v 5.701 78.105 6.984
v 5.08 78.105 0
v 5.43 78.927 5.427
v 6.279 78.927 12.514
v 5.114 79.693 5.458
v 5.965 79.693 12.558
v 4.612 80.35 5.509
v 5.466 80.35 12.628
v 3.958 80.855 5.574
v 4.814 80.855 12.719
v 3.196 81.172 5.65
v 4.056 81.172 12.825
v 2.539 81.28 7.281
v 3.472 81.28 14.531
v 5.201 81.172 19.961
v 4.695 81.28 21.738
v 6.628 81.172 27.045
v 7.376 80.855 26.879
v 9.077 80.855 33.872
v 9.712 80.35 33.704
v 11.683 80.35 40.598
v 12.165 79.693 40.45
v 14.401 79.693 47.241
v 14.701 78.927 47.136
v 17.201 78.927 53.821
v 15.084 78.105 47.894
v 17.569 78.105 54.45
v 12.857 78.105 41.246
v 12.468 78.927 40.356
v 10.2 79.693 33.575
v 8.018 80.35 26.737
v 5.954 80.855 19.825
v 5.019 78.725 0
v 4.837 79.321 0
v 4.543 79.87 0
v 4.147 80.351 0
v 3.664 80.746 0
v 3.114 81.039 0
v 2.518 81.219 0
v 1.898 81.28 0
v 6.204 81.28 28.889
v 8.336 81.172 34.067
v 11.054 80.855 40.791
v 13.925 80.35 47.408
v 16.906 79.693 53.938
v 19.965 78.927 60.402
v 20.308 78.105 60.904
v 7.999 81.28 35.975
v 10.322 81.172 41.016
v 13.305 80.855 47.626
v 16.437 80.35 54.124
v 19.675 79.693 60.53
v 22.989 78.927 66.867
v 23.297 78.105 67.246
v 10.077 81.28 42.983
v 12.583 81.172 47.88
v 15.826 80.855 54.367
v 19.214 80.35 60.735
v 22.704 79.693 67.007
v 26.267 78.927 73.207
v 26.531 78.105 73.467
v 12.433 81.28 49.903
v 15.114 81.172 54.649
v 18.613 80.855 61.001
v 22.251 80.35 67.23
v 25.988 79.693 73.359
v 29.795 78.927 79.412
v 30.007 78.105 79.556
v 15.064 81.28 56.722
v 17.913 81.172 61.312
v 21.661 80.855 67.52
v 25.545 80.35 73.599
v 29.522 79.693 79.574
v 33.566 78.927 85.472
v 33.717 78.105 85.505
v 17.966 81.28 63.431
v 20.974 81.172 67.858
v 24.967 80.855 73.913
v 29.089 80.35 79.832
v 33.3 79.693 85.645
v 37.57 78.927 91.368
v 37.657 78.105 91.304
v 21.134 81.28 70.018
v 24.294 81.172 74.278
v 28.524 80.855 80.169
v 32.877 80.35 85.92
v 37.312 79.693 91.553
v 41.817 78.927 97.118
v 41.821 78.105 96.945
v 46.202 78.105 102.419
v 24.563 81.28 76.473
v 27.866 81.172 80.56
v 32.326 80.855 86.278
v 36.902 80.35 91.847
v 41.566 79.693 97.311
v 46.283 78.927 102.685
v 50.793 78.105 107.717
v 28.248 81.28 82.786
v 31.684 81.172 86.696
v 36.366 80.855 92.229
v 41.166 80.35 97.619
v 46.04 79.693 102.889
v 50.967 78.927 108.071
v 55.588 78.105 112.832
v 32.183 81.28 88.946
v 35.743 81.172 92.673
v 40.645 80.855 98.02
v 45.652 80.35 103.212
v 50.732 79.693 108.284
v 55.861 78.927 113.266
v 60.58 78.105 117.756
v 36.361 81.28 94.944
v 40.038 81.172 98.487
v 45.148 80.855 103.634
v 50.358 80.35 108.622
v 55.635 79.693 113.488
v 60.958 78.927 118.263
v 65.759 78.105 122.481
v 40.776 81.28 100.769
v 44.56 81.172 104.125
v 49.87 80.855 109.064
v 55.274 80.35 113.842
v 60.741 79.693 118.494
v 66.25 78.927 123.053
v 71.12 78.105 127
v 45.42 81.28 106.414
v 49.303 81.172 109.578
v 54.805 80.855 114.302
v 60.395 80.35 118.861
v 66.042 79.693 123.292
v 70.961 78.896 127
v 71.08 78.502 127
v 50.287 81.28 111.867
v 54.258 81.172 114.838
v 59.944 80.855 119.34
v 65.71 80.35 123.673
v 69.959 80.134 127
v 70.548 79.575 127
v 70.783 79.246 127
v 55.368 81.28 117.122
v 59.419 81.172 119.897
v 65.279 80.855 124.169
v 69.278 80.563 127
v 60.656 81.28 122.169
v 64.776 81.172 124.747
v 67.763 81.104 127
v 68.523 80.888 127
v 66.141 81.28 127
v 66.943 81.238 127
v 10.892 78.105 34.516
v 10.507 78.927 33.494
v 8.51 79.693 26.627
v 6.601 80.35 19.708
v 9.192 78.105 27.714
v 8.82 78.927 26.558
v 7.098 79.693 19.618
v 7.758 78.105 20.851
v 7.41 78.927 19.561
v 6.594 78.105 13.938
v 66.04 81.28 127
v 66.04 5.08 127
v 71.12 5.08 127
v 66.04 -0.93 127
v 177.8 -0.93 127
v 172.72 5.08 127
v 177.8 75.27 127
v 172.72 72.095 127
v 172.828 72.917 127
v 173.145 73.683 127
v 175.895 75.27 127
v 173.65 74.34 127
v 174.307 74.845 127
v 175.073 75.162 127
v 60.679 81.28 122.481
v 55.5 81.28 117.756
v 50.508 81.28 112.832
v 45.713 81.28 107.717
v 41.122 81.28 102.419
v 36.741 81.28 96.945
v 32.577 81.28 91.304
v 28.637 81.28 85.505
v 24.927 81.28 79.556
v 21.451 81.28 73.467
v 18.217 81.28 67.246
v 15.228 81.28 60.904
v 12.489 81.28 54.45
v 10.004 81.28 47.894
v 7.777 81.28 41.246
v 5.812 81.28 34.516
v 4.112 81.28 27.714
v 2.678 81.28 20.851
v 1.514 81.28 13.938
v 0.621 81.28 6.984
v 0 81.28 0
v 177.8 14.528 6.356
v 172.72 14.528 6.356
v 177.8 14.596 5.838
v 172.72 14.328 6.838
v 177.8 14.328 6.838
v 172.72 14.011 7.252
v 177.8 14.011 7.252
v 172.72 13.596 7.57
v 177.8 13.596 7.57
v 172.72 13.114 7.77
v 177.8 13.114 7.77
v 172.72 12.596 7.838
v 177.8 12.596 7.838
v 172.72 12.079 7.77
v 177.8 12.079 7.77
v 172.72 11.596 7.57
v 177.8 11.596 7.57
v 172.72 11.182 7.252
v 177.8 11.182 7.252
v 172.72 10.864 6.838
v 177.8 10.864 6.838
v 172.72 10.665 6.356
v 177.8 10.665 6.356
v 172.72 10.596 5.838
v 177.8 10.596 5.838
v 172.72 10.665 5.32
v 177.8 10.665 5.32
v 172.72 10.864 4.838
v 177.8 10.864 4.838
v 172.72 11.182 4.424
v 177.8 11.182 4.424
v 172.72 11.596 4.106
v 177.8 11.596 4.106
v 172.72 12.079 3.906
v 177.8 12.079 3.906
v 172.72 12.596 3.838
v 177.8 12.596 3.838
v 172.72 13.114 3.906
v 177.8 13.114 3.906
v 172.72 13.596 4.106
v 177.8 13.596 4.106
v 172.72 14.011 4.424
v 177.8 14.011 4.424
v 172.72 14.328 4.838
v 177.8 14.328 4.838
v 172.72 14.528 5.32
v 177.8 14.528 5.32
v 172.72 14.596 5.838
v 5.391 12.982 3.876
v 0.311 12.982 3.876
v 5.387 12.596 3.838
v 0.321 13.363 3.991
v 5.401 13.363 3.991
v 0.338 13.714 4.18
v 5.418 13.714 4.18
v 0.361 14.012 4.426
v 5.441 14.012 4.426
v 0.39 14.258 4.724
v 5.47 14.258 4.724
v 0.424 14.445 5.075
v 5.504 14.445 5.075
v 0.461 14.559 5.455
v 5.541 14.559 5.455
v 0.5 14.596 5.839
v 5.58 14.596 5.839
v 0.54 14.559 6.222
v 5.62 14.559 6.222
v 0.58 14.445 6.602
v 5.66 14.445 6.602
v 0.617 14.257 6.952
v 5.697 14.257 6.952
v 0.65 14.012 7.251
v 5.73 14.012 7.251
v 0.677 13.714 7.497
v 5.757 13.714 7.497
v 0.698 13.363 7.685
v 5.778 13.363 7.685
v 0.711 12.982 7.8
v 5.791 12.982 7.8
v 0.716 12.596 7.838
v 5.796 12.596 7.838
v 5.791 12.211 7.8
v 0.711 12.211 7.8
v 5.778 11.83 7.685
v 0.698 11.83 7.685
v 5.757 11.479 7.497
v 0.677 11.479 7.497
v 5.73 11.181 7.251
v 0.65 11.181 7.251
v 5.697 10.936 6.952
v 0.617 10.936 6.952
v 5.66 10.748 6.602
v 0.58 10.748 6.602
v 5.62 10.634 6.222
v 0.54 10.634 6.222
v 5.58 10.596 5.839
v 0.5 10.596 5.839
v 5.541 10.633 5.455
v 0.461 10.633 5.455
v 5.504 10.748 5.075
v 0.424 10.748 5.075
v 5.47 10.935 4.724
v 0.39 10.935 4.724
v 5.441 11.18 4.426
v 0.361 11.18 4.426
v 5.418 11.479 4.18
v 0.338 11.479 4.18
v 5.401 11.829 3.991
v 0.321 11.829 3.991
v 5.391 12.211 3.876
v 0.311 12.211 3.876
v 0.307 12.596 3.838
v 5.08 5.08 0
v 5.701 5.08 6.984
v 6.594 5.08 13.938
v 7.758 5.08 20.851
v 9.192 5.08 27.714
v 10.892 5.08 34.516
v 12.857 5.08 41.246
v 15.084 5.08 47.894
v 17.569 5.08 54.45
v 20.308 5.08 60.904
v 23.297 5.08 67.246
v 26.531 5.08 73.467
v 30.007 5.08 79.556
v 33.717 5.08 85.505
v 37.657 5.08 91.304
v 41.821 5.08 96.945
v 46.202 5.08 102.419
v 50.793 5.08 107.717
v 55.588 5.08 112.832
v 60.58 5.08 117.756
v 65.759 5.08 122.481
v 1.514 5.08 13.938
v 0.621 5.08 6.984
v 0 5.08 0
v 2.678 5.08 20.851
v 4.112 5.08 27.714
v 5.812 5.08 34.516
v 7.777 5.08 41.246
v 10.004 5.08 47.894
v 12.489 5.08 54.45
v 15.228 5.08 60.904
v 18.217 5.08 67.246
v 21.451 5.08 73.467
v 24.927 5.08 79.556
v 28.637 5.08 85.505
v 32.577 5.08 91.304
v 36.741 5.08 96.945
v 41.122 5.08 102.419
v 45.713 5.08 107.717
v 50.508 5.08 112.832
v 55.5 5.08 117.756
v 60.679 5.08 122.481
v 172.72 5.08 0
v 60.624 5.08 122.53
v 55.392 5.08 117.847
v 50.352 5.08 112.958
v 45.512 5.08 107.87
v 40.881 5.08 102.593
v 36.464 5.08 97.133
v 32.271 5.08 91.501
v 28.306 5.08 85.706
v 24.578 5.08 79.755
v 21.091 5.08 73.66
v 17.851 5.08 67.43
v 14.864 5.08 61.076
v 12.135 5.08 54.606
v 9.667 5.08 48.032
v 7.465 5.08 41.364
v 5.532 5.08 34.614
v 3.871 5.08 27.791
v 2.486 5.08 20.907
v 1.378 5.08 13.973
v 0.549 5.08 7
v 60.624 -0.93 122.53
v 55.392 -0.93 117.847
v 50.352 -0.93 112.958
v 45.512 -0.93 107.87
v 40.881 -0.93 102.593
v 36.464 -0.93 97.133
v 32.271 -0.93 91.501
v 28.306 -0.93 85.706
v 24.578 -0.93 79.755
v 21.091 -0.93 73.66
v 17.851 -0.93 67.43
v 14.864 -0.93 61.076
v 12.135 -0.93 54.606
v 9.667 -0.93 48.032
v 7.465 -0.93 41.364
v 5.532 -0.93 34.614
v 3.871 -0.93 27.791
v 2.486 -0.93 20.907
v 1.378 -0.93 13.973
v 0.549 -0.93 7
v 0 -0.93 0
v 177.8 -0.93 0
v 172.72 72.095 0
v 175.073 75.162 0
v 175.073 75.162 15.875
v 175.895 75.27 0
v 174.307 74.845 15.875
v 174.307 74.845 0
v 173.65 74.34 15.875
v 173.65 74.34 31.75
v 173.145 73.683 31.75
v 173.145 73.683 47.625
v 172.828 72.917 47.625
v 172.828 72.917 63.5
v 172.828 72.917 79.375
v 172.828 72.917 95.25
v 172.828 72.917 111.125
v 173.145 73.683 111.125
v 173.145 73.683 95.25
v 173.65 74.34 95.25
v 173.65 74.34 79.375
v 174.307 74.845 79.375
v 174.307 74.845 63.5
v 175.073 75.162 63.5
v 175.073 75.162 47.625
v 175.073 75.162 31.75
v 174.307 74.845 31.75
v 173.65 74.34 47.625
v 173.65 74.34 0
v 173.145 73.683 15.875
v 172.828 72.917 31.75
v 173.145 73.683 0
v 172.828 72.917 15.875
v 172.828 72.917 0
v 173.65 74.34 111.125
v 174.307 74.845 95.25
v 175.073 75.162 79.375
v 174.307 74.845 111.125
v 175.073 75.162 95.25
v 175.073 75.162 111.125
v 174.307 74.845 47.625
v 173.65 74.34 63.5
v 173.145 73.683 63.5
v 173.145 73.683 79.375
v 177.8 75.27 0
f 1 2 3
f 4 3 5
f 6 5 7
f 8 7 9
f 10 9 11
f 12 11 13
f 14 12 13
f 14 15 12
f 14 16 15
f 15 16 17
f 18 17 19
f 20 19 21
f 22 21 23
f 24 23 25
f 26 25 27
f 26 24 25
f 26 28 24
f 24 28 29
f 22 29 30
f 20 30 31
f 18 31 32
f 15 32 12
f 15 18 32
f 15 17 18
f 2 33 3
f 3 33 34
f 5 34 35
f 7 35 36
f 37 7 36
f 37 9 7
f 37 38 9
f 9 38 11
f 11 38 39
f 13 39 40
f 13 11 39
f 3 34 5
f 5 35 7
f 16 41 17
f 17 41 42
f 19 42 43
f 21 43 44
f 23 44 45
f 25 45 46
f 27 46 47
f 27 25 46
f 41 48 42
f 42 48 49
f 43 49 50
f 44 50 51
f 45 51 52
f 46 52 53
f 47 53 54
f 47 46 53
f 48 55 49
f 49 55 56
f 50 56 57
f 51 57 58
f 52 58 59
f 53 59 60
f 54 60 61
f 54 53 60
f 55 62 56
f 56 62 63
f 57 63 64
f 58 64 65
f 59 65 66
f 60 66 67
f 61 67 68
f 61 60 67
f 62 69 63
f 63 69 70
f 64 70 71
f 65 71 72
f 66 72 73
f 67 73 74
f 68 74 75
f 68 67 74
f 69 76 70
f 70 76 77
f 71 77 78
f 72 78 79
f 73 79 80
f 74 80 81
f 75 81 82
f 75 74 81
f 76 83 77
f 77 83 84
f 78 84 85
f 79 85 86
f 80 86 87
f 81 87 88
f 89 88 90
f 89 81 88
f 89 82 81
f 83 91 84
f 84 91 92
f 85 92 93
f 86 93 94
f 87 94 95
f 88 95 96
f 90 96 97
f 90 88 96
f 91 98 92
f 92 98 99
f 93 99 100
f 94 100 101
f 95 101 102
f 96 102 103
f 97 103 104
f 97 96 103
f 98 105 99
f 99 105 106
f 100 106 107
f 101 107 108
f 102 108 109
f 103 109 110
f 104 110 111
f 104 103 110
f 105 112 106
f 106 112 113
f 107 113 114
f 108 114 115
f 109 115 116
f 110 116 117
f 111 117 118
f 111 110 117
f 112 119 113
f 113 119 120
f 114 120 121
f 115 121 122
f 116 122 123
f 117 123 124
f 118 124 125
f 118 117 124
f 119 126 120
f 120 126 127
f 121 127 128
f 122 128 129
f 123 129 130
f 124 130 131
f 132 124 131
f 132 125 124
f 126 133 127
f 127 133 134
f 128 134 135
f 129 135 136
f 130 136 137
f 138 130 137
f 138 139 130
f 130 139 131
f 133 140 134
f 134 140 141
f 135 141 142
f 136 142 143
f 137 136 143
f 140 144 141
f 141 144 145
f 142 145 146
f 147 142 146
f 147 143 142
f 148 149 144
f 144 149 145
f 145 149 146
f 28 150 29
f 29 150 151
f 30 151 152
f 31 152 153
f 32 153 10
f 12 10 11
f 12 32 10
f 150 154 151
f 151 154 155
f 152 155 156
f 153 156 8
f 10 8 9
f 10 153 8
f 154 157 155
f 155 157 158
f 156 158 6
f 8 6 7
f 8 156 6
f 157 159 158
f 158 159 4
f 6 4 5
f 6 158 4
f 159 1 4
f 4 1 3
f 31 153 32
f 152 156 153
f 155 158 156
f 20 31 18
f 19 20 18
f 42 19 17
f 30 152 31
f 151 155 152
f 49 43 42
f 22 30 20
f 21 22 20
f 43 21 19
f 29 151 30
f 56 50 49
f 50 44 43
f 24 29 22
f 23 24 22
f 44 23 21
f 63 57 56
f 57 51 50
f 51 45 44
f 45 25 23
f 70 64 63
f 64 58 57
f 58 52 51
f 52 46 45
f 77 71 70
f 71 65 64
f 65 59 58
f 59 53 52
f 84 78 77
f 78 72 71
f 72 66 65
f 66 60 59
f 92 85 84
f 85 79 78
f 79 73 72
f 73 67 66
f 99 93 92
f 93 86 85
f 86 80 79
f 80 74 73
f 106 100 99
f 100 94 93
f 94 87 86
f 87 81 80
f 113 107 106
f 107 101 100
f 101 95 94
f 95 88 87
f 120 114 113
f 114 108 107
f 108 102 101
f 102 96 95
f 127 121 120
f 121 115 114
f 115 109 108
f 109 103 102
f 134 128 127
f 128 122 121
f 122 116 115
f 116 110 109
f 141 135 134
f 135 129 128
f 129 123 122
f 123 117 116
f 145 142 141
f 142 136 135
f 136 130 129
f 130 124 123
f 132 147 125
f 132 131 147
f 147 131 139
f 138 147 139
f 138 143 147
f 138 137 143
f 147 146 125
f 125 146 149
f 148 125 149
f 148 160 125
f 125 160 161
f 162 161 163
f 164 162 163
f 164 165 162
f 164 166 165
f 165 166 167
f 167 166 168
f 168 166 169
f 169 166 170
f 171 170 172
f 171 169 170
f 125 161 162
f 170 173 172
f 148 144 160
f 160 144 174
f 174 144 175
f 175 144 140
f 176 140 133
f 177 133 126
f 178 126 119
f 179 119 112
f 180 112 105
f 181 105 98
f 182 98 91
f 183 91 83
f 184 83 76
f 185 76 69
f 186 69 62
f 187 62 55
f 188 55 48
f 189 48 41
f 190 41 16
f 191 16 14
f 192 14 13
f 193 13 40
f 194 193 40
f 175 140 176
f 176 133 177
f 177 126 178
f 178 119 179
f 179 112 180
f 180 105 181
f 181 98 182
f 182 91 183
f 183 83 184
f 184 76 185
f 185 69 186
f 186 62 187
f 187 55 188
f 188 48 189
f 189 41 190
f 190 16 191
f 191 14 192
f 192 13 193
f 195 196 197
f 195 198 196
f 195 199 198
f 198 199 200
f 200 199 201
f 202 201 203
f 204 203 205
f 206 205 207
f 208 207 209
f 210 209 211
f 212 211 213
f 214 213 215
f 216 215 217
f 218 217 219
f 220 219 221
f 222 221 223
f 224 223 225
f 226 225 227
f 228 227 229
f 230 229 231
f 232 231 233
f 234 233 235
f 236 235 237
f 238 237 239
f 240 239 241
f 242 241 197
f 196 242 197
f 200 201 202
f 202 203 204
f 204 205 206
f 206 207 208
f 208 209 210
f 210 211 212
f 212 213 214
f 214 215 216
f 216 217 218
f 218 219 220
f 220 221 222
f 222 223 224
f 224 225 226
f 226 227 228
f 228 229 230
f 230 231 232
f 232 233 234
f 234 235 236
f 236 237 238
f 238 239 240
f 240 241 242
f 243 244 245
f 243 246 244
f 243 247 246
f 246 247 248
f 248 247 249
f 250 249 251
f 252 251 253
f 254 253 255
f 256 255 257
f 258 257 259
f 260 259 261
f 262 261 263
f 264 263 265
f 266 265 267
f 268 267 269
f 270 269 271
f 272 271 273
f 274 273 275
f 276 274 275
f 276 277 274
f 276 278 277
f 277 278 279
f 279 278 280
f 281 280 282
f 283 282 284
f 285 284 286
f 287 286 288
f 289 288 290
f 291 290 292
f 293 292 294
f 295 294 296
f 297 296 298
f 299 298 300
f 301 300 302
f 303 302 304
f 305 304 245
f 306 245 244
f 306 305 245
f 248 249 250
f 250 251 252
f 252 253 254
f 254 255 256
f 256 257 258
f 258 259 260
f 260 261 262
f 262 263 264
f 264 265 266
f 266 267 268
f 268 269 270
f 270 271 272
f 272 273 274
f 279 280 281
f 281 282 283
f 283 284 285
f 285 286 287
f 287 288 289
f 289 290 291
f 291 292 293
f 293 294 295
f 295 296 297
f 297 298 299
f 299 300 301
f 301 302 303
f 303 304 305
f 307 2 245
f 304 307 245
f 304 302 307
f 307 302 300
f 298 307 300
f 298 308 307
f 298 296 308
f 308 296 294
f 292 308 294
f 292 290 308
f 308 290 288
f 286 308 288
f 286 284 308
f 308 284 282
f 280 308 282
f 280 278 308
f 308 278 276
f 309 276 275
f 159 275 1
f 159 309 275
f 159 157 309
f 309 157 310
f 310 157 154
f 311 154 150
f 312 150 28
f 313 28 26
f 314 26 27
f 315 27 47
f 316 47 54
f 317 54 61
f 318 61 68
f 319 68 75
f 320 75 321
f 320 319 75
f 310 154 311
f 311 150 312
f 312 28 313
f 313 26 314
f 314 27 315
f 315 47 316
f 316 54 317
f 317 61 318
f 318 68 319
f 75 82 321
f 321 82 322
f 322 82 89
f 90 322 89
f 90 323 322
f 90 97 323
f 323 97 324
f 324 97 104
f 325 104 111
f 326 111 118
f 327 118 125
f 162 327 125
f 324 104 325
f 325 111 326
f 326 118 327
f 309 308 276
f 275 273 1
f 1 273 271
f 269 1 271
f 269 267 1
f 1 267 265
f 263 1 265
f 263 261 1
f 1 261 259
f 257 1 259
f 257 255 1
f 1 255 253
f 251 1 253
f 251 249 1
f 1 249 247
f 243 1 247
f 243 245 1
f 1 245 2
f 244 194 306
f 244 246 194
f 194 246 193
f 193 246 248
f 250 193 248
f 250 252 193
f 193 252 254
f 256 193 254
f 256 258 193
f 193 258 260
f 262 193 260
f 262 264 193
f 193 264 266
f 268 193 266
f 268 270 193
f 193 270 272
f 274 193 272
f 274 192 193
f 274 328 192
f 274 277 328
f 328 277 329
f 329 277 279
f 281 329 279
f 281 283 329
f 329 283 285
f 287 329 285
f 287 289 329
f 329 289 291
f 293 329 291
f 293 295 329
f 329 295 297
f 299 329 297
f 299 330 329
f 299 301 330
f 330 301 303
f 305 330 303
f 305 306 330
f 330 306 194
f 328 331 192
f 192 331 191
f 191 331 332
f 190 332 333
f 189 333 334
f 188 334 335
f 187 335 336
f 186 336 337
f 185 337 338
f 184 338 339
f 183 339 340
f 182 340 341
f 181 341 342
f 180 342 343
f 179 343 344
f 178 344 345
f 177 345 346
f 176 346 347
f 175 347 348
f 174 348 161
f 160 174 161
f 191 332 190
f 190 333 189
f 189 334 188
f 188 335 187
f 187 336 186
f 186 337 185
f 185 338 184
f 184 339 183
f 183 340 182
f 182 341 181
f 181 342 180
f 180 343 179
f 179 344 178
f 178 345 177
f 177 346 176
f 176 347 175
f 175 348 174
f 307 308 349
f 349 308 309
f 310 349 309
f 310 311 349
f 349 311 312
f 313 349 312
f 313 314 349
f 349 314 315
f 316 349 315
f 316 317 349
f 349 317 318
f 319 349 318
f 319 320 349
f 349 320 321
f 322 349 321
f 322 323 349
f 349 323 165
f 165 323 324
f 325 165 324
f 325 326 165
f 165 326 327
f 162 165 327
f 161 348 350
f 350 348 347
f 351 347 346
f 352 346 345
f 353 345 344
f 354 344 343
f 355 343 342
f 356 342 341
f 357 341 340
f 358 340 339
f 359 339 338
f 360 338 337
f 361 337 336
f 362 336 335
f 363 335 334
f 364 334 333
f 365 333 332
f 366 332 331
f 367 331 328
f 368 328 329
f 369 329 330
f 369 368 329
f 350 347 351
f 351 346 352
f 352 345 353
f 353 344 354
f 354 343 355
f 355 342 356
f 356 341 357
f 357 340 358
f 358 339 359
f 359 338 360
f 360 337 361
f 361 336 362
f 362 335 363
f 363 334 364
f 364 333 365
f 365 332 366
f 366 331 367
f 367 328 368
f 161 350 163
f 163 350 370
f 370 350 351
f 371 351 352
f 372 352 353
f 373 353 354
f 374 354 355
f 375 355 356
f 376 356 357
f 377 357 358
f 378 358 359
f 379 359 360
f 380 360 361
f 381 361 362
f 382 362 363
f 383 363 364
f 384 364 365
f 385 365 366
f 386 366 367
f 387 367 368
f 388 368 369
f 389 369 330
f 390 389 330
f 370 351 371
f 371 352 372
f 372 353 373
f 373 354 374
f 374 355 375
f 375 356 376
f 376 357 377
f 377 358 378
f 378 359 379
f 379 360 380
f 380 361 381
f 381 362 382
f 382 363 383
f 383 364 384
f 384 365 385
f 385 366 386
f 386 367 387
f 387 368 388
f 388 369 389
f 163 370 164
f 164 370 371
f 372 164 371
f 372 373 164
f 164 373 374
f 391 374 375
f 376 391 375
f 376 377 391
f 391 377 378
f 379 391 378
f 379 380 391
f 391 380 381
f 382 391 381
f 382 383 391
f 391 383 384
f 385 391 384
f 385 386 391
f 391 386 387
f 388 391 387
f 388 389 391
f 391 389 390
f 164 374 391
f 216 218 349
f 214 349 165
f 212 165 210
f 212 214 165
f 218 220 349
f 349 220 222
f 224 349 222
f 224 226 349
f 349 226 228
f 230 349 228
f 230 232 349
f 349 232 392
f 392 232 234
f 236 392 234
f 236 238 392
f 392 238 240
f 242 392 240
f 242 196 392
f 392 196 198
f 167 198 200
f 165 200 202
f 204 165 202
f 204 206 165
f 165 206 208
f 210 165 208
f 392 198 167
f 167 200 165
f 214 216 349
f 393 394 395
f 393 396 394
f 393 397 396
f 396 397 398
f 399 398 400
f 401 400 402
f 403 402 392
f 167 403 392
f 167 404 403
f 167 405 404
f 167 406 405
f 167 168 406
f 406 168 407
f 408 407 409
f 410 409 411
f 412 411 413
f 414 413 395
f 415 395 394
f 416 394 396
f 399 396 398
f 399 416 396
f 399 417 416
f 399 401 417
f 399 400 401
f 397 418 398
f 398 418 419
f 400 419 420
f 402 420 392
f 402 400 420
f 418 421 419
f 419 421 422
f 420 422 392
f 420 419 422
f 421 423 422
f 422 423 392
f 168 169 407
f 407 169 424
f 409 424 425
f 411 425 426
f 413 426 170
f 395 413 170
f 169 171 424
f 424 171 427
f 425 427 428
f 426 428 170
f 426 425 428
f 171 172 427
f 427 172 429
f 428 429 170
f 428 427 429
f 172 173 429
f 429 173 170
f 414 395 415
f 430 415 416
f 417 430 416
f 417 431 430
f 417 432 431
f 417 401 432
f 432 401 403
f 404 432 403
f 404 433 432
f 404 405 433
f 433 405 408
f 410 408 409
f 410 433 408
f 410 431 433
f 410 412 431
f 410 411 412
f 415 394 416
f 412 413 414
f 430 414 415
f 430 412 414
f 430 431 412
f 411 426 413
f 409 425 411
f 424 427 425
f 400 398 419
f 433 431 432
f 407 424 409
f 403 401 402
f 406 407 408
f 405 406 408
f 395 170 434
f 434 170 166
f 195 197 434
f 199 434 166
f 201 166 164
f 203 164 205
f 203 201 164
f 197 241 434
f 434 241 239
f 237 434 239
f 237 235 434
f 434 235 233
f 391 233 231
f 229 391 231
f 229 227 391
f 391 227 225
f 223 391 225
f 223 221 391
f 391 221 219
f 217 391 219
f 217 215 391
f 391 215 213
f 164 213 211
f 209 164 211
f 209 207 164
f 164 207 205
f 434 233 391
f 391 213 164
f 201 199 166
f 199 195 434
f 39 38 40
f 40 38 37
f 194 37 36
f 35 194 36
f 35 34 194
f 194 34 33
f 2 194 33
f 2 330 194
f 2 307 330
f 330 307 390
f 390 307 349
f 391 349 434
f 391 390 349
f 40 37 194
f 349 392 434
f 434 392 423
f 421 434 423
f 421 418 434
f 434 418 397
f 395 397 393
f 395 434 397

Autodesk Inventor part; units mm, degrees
ref_plane "YZ Plane" through (0, 0, 0) normal (1, 0, 0) x (0, 1, 0)
ref_plane "XZ Plane" through (0, 0, 0) normal (0, 1, 0) x (-1, 0, 0)
ref_plane "XY Plane" through (0, 0, 0) normal (0, 0, 1) x (1, 0, 0)
sketch "Sketch1" plane through (0, 0, 0) normal (0, 0, 1) x (1, 0, 0)
  line L0 (177.8, -0.9299) -> (0, -0.9299)
  line L1 (175.895, 75.2701) -> (177.8, 75.2701)
  line L2 (172.72, 5.08) -> (172.72, 72.0951)
  arc A0 (175.895, 75.2701) -> (172.72, 72.0951) centre (175.895, 72.0951) ccw
  line L3 (177.8, -0.9299) -> (177.8, 75.2701)
  line L4 (172.72, 5.08) -> (0, 5.08)
  line L5 (0, 5.08) -> (0, -0.9299)
  point P0 (172.72, 75.2701)
  dimension "d0" = 177.8
  dimension "d4" = 3.175
  dimension "d6" = 1.905
  dimension "d87" = 76.2
extrude "Extrusion1" add sketch "Sketch1" along normal blind 127
sketch "Sketch5" plane through (0, 5.08, 0) normal (0, 1, 0) x (1, 0, 0)
  line L0 (172.72, -127) -> (71.12, -127) construction
  line L1 (0, 0) -> (0, -127) projected
  line L2 (5.08, 0) -> (0, 0)
  arc A0 (0, 0) -> (66.04, -127) centre (174.6906, 10.1687) ccw
  line L3 (71.12, -127) -> (66.04, -127)
  line L4 (172.72, -127) -> (71.12, -127)
  line L5 (0, -127) -> (177.8, -127) projected
  line L6 (172.72, -127) -> (0, -127) projected
  dimension "d99" = 5.08
  dimension "d100" = 5.08
  dimension "d134" = 101.6
split body "Split2" sketch "Sketch5" result one side removed curves L2 A0 L3 removed pieces at (22.8484, 4.58, 104.8944)
sketch "Sketch10" plane through (172.72, 5.08, 127) normal (0, 1, 0) x (1, 0, 0)
  point P0 (-172.72, 127)
sketch "Sketch6" plane through (172.72, 5.08, 127) normal (0, 1, 0) x (1, 0, 0)
  line L0 (-106.68, 0) -> (-101.6, 0)
  line L1 (-172.72, 127) -> (0, 127) projected
  line L2 (-172.72, 127) -> (-167.64, 127)
  arc A0 (-172.72, 127) -> (-106.68, 0) centre (6.2398, 139.3887) ccw
  arc A1 (-167.64, 127) -> (-101.6, 0) centre (11.3198, 139.3887) ccw
  dimension "d135" = 5.08
extrude "Extrusion3" add sketch "Sketch6" along normal blind 76.2
hole "Hole2" at (177.8, 12.5964, 5.838) direction (-1, 0, 0) diameter 4 end through all
fillet "Fillet2" radius 3.175 1 edges at (24.8837, 81.28, 70.3725)
properties part number "Intake Back Panel Middle" material "ABS Plastic"
